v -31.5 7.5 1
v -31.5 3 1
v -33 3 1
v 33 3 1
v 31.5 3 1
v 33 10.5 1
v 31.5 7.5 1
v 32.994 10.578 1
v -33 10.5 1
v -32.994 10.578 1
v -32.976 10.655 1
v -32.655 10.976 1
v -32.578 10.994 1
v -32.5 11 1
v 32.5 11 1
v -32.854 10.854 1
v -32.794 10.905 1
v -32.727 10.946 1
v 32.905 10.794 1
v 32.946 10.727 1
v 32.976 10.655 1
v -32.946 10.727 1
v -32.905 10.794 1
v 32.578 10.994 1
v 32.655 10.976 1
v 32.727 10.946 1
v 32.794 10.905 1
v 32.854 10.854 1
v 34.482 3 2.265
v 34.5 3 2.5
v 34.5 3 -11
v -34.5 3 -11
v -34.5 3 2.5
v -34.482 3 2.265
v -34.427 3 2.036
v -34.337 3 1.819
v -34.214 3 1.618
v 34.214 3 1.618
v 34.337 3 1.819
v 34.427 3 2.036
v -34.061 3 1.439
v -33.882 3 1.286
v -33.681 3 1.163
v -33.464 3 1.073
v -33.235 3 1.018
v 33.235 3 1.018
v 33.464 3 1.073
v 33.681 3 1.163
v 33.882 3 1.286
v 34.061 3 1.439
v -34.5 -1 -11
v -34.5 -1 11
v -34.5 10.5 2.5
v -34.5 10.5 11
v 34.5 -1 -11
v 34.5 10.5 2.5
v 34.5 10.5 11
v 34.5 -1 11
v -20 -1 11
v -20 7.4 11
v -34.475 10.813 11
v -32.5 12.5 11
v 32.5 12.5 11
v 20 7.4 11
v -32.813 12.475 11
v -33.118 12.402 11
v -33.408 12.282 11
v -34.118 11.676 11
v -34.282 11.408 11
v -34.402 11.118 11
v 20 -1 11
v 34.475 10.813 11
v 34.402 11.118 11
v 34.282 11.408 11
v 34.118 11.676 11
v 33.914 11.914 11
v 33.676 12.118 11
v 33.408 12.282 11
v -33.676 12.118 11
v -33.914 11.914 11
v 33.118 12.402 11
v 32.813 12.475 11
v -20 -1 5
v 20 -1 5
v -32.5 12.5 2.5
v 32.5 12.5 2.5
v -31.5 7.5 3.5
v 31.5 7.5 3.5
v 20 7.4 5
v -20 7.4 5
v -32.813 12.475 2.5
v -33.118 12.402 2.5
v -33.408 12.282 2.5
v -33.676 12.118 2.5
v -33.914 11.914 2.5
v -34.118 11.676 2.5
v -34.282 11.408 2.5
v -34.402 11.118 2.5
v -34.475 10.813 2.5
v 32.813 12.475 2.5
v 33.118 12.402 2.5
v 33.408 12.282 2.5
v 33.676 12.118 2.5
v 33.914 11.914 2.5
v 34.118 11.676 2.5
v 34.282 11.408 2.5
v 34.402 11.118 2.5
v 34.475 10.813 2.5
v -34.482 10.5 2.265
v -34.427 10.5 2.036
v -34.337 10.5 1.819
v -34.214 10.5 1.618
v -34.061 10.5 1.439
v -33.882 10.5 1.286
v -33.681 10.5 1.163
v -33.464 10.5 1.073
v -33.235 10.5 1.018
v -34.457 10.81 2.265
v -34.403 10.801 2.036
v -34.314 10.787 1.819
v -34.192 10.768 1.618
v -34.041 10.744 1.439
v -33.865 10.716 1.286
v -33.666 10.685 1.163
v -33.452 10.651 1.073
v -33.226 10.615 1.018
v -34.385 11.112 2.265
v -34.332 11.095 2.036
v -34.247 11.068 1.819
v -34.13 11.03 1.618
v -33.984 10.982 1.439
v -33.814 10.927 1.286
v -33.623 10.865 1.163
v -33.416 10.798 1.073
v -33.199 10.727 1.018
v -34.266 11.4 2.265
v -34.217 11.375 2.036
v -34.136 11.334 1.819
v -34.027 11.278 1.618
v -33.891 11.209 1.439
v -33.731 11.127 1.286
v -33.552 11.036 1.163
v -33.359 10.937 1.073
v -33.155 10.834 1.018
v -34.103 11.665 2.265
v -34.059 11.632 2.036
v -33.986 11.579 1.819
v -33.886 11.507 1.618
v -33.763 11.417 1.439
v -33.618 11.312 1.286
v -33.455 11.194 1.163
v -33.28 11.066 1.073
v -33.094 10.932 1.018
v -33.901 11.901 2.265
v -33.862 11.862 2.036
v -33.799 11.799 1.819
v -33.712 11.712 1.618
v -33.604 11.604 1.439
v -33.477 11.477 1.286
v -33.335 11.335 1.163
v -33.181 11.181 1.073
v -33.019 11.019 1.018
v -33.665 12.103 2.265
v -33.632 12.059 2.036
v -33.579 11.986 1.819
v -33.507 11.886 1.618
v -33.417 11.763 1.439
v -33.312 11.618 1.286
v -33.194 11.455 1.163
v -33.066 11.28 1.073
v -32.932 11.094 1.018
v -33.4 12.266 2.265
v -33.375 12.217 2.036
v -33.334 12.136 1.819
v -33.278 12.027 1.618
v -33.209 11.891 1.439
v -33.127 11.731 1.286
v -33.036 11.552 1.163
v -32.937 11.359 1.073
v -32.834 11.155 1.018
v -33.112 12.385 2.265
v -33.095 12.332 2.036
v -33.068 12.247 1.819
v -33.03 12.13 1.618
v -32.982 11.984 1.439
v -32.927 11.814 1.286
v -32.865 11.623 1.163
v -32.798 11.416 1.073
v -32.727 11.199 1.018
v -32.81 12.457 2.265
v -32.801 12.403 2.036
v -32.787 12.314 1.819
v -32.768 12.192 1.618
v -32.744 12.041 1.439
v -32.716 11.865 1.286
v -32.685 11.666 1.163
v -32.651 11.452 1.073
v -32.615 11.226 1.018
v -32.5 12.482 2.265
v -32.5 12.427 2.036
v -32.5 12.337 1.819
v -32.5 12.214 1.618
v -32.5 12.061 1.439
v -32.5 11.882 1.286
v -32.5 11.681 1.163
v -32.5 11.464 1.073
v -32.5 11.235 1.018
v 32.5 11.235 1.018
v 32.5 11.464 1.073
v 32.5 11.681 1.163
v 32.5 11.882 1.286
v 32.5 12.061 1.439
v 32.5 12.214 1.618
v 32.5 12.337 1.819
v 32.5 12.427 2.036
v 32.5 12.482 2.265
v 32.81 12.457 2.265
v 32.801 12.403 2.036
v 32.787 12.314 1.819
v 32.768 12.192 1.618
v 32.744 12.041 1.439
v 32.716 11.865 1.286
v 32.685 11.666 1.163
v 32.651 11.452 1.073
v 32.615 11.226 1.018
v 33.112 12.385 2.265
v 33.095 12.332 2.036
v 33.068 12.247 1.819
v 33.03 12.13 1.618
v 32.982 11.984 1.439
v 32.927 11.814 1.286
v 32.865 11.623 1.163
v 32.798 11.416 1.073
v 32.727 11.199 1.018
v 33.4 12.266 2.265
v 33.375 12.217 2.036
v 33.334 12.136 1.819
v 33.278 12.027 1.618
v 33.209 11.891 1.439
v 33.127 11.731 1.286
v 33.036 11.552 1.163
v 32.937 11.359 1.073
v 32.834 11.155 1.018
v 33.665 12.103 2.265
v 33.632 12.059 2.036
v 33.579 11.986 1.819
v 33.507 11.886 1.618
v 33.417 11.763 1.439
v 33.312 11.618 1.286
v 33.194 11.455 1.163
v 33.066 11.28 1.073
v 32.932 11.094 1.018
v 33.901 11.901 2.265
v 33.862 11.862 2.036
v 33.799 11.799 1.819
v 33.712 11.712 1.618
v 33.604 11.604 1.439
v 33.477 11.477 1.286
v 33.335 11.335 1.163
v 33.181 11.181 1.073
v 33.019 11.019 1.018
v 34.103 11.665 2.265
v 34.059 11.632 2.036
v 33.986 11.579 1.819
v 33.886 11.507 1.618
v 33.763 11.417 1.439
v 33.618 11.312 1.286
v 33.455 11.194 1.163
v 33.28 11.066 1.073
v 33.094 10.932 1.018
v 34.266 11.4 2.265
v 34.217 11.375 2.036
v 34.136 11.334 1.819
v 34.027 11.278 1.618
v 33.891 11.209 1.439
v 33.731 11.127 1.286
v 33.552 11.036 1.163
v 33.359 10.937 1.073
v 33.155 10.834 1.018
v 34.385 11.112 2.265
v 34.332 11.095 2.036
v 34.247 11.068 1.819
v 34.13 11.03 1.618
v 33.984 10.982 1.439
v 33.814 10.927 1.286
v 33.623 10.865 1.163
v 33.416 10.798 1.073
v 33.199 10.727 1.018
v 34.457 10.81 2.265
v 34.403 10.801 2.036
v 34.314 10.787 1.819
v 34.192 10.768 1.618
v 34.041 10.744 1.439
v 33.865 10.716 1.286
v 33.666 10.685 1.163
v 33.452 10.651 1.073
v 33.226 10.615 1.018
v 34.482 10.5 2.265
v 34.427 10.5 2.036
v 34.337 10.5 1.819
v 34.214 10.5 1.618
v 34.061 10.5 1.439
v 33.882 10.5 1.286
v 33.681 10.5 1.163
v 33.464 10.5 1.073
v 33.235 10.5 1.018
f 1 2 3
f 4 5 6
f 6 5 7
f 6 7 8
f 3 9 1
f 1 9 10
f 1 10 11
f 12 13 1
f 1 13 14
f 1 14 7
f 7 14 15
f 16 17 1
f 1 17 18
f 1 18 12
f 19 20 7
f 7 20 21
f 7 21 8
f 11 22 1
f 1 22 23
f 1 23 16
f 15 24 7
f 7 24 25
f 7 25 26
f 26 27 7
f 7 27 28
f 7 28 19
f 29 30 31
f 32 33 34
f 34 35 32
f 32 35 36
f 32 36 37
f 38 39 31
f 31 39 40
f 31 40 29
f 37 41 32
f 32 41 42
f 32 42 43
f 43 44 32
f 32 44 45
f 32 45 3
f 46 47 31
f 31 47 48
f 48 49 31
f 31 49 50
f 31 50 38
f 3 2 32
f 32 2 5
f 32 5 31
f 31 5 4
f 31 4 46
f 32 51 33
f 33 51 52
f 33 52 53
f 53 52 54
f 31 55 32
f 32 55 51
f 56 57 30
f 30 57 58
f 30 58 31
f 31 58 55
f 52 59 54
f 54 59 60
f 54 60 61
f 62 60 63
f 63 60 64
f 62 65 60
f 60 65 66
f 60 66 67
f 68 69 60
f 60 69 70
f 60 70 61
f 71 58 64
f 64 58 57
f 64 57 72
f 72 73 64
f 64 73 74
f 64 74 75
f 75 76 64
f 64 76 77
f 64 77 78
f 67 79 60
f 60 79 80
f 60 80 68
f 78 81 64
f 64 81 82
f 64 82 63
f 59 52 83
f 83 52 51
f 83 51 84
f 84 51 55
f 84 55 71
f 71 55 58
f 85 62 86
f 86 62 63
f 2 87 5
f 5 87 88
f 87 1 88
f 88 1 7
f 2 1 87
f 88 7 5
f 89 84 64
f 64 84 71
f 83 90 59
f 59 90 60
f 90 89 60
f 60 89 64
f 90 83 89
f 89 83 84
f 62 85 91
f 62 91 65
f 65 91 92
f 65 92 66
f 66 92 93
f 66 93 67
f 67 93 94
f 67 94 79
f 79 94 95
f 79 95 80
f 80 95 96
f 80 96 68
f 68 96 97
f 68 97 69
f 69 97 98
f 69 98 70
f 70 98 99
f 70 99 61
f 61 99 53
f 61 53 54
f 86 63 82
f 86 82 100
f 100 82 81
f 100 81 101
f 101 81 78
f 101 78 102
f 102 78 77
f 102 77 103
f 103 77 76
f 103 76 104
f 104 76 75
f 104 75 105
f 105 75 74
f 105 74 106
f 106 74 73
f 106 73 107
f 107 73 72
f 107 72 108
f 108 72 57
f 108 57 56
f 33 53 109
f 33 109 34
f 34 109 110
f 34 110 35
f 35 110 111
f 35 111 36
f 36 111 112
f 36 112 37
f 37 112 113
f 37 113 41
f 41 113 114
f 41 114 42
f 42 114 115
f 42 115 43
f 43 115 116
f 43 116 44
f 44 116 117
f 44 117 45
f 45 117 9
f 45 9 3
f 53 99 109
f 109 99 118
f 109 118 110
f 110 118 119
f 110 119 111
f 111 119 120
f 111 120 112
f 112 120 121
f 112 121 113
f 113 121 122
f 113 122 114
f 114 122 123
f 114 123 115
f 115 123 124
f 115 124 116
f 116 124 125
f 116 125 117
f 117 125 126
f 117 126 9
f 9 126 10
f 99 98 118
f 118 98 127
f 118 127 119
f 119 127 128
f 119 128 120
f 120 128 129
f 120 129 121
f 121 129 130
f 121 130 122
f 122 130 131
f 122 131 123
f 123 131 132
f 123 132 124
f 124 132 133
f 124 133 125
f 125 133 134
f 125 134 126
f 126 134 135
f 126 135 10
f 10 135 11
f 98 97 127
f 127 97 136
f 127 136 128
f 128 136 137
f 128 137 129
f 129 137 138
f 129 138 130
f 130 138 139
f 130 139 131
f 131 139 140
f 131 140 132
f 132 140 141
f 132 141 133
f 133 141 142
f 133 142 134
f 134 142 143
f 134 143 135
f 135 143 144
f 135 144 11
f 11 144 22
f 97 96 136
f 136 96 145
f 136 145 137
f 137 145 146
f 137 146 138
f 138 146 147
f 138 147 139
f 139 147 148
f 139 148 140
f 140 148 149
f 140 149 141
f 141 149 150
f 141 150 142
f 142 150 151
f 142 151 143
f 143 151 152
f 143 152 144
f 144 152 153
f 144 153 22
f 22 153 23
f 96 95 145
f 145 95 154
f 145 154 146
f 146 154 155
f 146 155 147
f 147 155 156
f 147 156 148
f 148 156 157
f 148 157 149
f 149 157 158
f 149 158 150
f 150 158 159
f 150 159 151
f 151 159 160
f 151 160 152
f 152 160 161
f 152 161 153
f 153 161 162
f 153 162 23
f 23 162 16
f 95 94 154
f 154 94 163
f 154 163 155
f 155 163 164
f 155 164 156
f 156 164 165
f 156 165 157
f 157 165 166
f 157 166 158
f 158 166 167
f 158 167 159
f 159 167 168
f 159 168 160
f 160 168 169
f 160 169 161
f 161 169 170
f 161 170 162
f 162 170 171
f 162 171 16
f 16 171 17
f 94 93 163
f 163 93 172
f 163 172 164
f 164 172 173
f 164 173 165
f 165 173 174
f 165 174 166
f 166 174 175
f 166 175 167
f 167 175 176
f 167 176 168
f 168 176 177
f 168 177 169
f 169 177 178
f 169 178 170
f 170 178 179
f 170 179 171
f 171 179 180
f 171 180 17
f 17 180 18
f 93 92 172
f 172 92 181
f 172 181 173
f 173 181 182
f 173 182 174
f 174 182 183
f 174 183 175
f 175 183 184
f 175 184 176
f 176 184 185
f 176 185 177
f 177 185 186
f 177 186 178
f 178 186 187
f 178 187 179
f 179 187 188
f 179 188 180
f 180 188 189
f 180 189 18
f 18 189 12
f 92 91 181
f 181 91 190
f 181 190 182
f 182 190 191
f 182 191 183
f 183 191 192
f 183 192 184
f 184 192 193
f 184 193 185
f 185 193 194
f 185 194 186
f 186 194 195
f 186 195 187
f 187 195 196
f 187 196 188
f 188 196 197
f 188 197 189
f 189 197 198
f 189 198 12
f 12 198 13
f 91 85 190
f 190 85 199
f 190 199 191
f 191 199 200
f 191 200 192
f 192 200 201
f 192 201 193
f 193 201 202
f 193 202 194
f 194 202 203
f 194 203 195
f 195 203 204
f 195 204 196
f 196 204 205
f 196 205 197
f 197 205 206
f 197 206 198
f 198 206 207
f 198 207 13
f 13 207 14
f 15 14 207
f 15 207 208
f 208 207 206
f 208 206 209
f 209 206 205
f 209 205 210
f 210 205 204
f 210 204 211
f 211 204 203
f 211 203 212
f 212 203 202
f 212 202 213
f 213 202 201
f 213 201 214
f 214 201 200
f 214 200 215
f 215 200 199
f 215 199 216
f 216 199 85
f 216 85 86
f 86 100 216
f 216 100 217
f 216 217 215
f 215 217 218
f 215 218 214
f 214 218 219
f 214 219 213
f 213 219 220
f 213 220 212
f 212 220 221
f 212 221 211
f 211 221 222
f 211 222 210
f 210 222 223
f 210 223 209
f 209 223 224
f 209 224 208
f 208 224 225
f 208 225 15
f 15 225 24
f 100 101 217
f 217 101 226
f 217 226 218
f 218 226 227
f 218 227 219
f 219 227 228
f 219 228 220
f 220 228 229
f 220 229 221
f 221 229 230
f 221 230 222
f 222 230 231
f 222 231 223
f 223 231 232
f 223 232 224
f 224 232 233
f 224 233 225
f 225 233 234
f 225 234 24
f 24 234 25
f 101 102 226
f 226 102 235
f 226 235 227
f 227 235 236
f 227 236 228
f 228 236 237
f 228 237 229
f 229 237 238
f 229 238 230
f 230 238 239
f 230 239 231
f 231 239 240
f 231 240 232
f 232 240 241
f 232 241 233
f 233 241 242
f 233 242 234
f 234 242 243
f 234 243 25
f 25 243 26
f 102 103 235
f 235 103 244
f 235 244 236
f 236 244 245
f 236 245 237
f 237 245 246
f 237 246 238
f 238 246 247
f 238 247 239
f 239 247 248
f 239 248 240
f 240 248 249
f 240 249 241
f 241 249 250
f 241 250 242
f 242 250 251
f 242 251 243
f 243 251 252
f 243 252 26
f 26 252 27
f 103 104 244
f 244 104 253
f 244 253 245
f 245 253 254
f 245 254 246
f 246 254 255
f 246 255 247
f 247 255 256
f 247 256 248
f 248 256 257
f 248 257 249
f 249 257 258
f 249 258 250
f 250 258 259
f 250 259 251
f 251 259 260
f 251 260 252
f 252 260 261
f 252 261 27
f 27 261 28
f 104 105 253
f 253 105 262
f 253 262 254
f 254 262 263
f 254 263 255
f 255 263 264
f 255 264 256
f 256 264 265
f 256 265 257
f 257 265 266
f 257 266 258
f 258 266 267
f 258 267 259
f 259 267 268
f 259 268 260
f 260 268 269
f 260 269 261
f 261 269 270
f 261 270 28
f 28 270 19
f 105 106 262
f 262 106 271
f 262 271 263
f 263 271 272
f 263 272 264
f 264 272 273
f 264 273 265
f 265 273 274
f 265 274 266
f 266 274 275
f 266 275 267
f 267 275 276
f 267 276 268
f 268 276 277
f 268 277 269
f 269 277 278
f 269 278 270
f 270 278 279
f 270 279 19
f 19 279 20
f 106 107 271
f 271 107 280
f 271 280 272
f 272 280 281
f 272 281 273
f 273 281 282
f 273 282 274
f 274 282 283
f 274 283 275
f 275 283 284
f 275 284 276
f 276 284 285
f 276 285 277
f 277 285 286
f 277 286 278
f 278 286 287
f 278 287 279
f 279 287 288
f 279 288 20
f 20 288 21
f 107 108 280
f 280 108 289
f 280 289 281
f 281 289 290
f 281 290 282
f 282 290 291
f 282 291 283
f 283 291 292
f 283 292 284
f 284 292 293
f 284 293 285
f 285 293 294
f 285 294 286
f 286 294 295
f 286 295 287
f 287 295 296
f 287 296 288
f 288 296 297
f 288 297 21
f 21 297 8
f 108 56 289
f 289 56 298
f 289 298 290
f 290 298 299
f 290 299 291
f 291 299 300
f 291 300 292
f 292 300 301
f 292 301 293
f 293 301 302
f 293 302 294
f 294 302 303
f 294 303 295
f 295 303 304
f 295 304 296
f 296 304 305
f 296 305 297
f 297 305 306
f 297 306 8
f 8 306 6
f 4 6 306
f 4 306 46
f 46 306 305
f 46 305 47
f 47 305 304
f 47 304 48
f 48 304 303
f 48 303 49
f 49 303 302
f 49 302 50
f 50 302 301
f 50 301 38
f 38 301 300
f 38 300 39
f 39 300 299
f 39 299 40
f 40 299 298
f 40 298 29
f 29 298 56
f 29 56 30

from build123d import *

# Parameters (mm, degrees)
SKETCH1_W                = 69
SKETCH1_H                = 22
BOSS_EXTRUDE1_DEPTH      = 3
BOSS_EXTRUDE1_DEPTH_BACK = 1
BOSS_EXTRUDE2_DEPTH      = 9.5
CUT_EXTRUDE2_DEPTH       = 63
SKETCH5_W                = 40
SKETCH5_H                = 8.4
CUT_EXTRUDE3_DEPTH       = 6
FILLET5_R                = 2
FILLET6_R                = 1.5


with BuildPart() as part:
    # Sketch1 → Boss-Extrude1 (new body, two sides)
    with BuildSketch(Plane(origin=(0, 0, 0), x_dir=(1, 0, 0), z_dir=(0, 1, 0))) as boss_extrude1_sk:
        Rectangle(SKETCH1_W, SKETCH1_H)
    extrude(amount=BOSS_EXTRUDE1_DEPTH)
    extrude(boss_extrude1_sk.sketch, amount=-BOSS_EXTRUDE1_DEPTH_BACK)

    # Sketch2 → Boss-Extrude2 (add)
    with BuildSketch(Plane(origin=(0, 3, 0), x_dir=(1, 0, 0), z_dir=(0, 1, 0))):
        Polygon((-34.5, -11), (-21.5, -11), (21.5, -11), (34.5, -11), (34.5, -1), (21.5, -1), (-21.5, -1), (-34.5, -1), align=None)
    extrude(amount=BOSS_EXTRUDE2_DEPTH)

    # Sketch4 → Cut-Extrude2 (cut)
    with BuildSketch(Plane(origin=(31.5, 0, 0), x_dir=(0, 0, -1), z_dir=(1, 0, 0))):
        Polygon((-1, 3), (-3.5, 7.5), (-1, 7.5), align=None)
    extrude(amount=-CUT_EXTRUDE2_DEPTH, mode=Mode.SUBTRACT)

    # Sketch5 → Cut-Extrude3 (cut)
    with BuildSketch(Plane.XY.offset(11)):
        with Locations((0, 3.2)):
            Rectangle(SKETCH5_W, SKETCH5_H)
    extrude(amount=-CUT_EXTRUDE3_DEPTH, mode=Mode.SUBTRACT)

    # Fillet5
    fillet5_edges = [part.edges().sort_by_distance(p)[0] for p in [
        (-34.5, 12.5, 6),
        (34.5, 12.5, 6),
    ]]
    fillet(fillet5_edges, radius=FILLET5_R)

    # Fillet6
    fillet6_edges = [part.edges().sort_by_distance(p)[0] for p in [
        (0, 12.5, 1),
        (-34.5, 6.75, 1),
        (34.5, 6.75, 1),
        (33.914213562, 11.914213562, 1),
        (-33.914213562, 11.914213562, 1),
    ]]
    fillet(fillet6_edges, radius=FILLET6_R)


solid = part.part
